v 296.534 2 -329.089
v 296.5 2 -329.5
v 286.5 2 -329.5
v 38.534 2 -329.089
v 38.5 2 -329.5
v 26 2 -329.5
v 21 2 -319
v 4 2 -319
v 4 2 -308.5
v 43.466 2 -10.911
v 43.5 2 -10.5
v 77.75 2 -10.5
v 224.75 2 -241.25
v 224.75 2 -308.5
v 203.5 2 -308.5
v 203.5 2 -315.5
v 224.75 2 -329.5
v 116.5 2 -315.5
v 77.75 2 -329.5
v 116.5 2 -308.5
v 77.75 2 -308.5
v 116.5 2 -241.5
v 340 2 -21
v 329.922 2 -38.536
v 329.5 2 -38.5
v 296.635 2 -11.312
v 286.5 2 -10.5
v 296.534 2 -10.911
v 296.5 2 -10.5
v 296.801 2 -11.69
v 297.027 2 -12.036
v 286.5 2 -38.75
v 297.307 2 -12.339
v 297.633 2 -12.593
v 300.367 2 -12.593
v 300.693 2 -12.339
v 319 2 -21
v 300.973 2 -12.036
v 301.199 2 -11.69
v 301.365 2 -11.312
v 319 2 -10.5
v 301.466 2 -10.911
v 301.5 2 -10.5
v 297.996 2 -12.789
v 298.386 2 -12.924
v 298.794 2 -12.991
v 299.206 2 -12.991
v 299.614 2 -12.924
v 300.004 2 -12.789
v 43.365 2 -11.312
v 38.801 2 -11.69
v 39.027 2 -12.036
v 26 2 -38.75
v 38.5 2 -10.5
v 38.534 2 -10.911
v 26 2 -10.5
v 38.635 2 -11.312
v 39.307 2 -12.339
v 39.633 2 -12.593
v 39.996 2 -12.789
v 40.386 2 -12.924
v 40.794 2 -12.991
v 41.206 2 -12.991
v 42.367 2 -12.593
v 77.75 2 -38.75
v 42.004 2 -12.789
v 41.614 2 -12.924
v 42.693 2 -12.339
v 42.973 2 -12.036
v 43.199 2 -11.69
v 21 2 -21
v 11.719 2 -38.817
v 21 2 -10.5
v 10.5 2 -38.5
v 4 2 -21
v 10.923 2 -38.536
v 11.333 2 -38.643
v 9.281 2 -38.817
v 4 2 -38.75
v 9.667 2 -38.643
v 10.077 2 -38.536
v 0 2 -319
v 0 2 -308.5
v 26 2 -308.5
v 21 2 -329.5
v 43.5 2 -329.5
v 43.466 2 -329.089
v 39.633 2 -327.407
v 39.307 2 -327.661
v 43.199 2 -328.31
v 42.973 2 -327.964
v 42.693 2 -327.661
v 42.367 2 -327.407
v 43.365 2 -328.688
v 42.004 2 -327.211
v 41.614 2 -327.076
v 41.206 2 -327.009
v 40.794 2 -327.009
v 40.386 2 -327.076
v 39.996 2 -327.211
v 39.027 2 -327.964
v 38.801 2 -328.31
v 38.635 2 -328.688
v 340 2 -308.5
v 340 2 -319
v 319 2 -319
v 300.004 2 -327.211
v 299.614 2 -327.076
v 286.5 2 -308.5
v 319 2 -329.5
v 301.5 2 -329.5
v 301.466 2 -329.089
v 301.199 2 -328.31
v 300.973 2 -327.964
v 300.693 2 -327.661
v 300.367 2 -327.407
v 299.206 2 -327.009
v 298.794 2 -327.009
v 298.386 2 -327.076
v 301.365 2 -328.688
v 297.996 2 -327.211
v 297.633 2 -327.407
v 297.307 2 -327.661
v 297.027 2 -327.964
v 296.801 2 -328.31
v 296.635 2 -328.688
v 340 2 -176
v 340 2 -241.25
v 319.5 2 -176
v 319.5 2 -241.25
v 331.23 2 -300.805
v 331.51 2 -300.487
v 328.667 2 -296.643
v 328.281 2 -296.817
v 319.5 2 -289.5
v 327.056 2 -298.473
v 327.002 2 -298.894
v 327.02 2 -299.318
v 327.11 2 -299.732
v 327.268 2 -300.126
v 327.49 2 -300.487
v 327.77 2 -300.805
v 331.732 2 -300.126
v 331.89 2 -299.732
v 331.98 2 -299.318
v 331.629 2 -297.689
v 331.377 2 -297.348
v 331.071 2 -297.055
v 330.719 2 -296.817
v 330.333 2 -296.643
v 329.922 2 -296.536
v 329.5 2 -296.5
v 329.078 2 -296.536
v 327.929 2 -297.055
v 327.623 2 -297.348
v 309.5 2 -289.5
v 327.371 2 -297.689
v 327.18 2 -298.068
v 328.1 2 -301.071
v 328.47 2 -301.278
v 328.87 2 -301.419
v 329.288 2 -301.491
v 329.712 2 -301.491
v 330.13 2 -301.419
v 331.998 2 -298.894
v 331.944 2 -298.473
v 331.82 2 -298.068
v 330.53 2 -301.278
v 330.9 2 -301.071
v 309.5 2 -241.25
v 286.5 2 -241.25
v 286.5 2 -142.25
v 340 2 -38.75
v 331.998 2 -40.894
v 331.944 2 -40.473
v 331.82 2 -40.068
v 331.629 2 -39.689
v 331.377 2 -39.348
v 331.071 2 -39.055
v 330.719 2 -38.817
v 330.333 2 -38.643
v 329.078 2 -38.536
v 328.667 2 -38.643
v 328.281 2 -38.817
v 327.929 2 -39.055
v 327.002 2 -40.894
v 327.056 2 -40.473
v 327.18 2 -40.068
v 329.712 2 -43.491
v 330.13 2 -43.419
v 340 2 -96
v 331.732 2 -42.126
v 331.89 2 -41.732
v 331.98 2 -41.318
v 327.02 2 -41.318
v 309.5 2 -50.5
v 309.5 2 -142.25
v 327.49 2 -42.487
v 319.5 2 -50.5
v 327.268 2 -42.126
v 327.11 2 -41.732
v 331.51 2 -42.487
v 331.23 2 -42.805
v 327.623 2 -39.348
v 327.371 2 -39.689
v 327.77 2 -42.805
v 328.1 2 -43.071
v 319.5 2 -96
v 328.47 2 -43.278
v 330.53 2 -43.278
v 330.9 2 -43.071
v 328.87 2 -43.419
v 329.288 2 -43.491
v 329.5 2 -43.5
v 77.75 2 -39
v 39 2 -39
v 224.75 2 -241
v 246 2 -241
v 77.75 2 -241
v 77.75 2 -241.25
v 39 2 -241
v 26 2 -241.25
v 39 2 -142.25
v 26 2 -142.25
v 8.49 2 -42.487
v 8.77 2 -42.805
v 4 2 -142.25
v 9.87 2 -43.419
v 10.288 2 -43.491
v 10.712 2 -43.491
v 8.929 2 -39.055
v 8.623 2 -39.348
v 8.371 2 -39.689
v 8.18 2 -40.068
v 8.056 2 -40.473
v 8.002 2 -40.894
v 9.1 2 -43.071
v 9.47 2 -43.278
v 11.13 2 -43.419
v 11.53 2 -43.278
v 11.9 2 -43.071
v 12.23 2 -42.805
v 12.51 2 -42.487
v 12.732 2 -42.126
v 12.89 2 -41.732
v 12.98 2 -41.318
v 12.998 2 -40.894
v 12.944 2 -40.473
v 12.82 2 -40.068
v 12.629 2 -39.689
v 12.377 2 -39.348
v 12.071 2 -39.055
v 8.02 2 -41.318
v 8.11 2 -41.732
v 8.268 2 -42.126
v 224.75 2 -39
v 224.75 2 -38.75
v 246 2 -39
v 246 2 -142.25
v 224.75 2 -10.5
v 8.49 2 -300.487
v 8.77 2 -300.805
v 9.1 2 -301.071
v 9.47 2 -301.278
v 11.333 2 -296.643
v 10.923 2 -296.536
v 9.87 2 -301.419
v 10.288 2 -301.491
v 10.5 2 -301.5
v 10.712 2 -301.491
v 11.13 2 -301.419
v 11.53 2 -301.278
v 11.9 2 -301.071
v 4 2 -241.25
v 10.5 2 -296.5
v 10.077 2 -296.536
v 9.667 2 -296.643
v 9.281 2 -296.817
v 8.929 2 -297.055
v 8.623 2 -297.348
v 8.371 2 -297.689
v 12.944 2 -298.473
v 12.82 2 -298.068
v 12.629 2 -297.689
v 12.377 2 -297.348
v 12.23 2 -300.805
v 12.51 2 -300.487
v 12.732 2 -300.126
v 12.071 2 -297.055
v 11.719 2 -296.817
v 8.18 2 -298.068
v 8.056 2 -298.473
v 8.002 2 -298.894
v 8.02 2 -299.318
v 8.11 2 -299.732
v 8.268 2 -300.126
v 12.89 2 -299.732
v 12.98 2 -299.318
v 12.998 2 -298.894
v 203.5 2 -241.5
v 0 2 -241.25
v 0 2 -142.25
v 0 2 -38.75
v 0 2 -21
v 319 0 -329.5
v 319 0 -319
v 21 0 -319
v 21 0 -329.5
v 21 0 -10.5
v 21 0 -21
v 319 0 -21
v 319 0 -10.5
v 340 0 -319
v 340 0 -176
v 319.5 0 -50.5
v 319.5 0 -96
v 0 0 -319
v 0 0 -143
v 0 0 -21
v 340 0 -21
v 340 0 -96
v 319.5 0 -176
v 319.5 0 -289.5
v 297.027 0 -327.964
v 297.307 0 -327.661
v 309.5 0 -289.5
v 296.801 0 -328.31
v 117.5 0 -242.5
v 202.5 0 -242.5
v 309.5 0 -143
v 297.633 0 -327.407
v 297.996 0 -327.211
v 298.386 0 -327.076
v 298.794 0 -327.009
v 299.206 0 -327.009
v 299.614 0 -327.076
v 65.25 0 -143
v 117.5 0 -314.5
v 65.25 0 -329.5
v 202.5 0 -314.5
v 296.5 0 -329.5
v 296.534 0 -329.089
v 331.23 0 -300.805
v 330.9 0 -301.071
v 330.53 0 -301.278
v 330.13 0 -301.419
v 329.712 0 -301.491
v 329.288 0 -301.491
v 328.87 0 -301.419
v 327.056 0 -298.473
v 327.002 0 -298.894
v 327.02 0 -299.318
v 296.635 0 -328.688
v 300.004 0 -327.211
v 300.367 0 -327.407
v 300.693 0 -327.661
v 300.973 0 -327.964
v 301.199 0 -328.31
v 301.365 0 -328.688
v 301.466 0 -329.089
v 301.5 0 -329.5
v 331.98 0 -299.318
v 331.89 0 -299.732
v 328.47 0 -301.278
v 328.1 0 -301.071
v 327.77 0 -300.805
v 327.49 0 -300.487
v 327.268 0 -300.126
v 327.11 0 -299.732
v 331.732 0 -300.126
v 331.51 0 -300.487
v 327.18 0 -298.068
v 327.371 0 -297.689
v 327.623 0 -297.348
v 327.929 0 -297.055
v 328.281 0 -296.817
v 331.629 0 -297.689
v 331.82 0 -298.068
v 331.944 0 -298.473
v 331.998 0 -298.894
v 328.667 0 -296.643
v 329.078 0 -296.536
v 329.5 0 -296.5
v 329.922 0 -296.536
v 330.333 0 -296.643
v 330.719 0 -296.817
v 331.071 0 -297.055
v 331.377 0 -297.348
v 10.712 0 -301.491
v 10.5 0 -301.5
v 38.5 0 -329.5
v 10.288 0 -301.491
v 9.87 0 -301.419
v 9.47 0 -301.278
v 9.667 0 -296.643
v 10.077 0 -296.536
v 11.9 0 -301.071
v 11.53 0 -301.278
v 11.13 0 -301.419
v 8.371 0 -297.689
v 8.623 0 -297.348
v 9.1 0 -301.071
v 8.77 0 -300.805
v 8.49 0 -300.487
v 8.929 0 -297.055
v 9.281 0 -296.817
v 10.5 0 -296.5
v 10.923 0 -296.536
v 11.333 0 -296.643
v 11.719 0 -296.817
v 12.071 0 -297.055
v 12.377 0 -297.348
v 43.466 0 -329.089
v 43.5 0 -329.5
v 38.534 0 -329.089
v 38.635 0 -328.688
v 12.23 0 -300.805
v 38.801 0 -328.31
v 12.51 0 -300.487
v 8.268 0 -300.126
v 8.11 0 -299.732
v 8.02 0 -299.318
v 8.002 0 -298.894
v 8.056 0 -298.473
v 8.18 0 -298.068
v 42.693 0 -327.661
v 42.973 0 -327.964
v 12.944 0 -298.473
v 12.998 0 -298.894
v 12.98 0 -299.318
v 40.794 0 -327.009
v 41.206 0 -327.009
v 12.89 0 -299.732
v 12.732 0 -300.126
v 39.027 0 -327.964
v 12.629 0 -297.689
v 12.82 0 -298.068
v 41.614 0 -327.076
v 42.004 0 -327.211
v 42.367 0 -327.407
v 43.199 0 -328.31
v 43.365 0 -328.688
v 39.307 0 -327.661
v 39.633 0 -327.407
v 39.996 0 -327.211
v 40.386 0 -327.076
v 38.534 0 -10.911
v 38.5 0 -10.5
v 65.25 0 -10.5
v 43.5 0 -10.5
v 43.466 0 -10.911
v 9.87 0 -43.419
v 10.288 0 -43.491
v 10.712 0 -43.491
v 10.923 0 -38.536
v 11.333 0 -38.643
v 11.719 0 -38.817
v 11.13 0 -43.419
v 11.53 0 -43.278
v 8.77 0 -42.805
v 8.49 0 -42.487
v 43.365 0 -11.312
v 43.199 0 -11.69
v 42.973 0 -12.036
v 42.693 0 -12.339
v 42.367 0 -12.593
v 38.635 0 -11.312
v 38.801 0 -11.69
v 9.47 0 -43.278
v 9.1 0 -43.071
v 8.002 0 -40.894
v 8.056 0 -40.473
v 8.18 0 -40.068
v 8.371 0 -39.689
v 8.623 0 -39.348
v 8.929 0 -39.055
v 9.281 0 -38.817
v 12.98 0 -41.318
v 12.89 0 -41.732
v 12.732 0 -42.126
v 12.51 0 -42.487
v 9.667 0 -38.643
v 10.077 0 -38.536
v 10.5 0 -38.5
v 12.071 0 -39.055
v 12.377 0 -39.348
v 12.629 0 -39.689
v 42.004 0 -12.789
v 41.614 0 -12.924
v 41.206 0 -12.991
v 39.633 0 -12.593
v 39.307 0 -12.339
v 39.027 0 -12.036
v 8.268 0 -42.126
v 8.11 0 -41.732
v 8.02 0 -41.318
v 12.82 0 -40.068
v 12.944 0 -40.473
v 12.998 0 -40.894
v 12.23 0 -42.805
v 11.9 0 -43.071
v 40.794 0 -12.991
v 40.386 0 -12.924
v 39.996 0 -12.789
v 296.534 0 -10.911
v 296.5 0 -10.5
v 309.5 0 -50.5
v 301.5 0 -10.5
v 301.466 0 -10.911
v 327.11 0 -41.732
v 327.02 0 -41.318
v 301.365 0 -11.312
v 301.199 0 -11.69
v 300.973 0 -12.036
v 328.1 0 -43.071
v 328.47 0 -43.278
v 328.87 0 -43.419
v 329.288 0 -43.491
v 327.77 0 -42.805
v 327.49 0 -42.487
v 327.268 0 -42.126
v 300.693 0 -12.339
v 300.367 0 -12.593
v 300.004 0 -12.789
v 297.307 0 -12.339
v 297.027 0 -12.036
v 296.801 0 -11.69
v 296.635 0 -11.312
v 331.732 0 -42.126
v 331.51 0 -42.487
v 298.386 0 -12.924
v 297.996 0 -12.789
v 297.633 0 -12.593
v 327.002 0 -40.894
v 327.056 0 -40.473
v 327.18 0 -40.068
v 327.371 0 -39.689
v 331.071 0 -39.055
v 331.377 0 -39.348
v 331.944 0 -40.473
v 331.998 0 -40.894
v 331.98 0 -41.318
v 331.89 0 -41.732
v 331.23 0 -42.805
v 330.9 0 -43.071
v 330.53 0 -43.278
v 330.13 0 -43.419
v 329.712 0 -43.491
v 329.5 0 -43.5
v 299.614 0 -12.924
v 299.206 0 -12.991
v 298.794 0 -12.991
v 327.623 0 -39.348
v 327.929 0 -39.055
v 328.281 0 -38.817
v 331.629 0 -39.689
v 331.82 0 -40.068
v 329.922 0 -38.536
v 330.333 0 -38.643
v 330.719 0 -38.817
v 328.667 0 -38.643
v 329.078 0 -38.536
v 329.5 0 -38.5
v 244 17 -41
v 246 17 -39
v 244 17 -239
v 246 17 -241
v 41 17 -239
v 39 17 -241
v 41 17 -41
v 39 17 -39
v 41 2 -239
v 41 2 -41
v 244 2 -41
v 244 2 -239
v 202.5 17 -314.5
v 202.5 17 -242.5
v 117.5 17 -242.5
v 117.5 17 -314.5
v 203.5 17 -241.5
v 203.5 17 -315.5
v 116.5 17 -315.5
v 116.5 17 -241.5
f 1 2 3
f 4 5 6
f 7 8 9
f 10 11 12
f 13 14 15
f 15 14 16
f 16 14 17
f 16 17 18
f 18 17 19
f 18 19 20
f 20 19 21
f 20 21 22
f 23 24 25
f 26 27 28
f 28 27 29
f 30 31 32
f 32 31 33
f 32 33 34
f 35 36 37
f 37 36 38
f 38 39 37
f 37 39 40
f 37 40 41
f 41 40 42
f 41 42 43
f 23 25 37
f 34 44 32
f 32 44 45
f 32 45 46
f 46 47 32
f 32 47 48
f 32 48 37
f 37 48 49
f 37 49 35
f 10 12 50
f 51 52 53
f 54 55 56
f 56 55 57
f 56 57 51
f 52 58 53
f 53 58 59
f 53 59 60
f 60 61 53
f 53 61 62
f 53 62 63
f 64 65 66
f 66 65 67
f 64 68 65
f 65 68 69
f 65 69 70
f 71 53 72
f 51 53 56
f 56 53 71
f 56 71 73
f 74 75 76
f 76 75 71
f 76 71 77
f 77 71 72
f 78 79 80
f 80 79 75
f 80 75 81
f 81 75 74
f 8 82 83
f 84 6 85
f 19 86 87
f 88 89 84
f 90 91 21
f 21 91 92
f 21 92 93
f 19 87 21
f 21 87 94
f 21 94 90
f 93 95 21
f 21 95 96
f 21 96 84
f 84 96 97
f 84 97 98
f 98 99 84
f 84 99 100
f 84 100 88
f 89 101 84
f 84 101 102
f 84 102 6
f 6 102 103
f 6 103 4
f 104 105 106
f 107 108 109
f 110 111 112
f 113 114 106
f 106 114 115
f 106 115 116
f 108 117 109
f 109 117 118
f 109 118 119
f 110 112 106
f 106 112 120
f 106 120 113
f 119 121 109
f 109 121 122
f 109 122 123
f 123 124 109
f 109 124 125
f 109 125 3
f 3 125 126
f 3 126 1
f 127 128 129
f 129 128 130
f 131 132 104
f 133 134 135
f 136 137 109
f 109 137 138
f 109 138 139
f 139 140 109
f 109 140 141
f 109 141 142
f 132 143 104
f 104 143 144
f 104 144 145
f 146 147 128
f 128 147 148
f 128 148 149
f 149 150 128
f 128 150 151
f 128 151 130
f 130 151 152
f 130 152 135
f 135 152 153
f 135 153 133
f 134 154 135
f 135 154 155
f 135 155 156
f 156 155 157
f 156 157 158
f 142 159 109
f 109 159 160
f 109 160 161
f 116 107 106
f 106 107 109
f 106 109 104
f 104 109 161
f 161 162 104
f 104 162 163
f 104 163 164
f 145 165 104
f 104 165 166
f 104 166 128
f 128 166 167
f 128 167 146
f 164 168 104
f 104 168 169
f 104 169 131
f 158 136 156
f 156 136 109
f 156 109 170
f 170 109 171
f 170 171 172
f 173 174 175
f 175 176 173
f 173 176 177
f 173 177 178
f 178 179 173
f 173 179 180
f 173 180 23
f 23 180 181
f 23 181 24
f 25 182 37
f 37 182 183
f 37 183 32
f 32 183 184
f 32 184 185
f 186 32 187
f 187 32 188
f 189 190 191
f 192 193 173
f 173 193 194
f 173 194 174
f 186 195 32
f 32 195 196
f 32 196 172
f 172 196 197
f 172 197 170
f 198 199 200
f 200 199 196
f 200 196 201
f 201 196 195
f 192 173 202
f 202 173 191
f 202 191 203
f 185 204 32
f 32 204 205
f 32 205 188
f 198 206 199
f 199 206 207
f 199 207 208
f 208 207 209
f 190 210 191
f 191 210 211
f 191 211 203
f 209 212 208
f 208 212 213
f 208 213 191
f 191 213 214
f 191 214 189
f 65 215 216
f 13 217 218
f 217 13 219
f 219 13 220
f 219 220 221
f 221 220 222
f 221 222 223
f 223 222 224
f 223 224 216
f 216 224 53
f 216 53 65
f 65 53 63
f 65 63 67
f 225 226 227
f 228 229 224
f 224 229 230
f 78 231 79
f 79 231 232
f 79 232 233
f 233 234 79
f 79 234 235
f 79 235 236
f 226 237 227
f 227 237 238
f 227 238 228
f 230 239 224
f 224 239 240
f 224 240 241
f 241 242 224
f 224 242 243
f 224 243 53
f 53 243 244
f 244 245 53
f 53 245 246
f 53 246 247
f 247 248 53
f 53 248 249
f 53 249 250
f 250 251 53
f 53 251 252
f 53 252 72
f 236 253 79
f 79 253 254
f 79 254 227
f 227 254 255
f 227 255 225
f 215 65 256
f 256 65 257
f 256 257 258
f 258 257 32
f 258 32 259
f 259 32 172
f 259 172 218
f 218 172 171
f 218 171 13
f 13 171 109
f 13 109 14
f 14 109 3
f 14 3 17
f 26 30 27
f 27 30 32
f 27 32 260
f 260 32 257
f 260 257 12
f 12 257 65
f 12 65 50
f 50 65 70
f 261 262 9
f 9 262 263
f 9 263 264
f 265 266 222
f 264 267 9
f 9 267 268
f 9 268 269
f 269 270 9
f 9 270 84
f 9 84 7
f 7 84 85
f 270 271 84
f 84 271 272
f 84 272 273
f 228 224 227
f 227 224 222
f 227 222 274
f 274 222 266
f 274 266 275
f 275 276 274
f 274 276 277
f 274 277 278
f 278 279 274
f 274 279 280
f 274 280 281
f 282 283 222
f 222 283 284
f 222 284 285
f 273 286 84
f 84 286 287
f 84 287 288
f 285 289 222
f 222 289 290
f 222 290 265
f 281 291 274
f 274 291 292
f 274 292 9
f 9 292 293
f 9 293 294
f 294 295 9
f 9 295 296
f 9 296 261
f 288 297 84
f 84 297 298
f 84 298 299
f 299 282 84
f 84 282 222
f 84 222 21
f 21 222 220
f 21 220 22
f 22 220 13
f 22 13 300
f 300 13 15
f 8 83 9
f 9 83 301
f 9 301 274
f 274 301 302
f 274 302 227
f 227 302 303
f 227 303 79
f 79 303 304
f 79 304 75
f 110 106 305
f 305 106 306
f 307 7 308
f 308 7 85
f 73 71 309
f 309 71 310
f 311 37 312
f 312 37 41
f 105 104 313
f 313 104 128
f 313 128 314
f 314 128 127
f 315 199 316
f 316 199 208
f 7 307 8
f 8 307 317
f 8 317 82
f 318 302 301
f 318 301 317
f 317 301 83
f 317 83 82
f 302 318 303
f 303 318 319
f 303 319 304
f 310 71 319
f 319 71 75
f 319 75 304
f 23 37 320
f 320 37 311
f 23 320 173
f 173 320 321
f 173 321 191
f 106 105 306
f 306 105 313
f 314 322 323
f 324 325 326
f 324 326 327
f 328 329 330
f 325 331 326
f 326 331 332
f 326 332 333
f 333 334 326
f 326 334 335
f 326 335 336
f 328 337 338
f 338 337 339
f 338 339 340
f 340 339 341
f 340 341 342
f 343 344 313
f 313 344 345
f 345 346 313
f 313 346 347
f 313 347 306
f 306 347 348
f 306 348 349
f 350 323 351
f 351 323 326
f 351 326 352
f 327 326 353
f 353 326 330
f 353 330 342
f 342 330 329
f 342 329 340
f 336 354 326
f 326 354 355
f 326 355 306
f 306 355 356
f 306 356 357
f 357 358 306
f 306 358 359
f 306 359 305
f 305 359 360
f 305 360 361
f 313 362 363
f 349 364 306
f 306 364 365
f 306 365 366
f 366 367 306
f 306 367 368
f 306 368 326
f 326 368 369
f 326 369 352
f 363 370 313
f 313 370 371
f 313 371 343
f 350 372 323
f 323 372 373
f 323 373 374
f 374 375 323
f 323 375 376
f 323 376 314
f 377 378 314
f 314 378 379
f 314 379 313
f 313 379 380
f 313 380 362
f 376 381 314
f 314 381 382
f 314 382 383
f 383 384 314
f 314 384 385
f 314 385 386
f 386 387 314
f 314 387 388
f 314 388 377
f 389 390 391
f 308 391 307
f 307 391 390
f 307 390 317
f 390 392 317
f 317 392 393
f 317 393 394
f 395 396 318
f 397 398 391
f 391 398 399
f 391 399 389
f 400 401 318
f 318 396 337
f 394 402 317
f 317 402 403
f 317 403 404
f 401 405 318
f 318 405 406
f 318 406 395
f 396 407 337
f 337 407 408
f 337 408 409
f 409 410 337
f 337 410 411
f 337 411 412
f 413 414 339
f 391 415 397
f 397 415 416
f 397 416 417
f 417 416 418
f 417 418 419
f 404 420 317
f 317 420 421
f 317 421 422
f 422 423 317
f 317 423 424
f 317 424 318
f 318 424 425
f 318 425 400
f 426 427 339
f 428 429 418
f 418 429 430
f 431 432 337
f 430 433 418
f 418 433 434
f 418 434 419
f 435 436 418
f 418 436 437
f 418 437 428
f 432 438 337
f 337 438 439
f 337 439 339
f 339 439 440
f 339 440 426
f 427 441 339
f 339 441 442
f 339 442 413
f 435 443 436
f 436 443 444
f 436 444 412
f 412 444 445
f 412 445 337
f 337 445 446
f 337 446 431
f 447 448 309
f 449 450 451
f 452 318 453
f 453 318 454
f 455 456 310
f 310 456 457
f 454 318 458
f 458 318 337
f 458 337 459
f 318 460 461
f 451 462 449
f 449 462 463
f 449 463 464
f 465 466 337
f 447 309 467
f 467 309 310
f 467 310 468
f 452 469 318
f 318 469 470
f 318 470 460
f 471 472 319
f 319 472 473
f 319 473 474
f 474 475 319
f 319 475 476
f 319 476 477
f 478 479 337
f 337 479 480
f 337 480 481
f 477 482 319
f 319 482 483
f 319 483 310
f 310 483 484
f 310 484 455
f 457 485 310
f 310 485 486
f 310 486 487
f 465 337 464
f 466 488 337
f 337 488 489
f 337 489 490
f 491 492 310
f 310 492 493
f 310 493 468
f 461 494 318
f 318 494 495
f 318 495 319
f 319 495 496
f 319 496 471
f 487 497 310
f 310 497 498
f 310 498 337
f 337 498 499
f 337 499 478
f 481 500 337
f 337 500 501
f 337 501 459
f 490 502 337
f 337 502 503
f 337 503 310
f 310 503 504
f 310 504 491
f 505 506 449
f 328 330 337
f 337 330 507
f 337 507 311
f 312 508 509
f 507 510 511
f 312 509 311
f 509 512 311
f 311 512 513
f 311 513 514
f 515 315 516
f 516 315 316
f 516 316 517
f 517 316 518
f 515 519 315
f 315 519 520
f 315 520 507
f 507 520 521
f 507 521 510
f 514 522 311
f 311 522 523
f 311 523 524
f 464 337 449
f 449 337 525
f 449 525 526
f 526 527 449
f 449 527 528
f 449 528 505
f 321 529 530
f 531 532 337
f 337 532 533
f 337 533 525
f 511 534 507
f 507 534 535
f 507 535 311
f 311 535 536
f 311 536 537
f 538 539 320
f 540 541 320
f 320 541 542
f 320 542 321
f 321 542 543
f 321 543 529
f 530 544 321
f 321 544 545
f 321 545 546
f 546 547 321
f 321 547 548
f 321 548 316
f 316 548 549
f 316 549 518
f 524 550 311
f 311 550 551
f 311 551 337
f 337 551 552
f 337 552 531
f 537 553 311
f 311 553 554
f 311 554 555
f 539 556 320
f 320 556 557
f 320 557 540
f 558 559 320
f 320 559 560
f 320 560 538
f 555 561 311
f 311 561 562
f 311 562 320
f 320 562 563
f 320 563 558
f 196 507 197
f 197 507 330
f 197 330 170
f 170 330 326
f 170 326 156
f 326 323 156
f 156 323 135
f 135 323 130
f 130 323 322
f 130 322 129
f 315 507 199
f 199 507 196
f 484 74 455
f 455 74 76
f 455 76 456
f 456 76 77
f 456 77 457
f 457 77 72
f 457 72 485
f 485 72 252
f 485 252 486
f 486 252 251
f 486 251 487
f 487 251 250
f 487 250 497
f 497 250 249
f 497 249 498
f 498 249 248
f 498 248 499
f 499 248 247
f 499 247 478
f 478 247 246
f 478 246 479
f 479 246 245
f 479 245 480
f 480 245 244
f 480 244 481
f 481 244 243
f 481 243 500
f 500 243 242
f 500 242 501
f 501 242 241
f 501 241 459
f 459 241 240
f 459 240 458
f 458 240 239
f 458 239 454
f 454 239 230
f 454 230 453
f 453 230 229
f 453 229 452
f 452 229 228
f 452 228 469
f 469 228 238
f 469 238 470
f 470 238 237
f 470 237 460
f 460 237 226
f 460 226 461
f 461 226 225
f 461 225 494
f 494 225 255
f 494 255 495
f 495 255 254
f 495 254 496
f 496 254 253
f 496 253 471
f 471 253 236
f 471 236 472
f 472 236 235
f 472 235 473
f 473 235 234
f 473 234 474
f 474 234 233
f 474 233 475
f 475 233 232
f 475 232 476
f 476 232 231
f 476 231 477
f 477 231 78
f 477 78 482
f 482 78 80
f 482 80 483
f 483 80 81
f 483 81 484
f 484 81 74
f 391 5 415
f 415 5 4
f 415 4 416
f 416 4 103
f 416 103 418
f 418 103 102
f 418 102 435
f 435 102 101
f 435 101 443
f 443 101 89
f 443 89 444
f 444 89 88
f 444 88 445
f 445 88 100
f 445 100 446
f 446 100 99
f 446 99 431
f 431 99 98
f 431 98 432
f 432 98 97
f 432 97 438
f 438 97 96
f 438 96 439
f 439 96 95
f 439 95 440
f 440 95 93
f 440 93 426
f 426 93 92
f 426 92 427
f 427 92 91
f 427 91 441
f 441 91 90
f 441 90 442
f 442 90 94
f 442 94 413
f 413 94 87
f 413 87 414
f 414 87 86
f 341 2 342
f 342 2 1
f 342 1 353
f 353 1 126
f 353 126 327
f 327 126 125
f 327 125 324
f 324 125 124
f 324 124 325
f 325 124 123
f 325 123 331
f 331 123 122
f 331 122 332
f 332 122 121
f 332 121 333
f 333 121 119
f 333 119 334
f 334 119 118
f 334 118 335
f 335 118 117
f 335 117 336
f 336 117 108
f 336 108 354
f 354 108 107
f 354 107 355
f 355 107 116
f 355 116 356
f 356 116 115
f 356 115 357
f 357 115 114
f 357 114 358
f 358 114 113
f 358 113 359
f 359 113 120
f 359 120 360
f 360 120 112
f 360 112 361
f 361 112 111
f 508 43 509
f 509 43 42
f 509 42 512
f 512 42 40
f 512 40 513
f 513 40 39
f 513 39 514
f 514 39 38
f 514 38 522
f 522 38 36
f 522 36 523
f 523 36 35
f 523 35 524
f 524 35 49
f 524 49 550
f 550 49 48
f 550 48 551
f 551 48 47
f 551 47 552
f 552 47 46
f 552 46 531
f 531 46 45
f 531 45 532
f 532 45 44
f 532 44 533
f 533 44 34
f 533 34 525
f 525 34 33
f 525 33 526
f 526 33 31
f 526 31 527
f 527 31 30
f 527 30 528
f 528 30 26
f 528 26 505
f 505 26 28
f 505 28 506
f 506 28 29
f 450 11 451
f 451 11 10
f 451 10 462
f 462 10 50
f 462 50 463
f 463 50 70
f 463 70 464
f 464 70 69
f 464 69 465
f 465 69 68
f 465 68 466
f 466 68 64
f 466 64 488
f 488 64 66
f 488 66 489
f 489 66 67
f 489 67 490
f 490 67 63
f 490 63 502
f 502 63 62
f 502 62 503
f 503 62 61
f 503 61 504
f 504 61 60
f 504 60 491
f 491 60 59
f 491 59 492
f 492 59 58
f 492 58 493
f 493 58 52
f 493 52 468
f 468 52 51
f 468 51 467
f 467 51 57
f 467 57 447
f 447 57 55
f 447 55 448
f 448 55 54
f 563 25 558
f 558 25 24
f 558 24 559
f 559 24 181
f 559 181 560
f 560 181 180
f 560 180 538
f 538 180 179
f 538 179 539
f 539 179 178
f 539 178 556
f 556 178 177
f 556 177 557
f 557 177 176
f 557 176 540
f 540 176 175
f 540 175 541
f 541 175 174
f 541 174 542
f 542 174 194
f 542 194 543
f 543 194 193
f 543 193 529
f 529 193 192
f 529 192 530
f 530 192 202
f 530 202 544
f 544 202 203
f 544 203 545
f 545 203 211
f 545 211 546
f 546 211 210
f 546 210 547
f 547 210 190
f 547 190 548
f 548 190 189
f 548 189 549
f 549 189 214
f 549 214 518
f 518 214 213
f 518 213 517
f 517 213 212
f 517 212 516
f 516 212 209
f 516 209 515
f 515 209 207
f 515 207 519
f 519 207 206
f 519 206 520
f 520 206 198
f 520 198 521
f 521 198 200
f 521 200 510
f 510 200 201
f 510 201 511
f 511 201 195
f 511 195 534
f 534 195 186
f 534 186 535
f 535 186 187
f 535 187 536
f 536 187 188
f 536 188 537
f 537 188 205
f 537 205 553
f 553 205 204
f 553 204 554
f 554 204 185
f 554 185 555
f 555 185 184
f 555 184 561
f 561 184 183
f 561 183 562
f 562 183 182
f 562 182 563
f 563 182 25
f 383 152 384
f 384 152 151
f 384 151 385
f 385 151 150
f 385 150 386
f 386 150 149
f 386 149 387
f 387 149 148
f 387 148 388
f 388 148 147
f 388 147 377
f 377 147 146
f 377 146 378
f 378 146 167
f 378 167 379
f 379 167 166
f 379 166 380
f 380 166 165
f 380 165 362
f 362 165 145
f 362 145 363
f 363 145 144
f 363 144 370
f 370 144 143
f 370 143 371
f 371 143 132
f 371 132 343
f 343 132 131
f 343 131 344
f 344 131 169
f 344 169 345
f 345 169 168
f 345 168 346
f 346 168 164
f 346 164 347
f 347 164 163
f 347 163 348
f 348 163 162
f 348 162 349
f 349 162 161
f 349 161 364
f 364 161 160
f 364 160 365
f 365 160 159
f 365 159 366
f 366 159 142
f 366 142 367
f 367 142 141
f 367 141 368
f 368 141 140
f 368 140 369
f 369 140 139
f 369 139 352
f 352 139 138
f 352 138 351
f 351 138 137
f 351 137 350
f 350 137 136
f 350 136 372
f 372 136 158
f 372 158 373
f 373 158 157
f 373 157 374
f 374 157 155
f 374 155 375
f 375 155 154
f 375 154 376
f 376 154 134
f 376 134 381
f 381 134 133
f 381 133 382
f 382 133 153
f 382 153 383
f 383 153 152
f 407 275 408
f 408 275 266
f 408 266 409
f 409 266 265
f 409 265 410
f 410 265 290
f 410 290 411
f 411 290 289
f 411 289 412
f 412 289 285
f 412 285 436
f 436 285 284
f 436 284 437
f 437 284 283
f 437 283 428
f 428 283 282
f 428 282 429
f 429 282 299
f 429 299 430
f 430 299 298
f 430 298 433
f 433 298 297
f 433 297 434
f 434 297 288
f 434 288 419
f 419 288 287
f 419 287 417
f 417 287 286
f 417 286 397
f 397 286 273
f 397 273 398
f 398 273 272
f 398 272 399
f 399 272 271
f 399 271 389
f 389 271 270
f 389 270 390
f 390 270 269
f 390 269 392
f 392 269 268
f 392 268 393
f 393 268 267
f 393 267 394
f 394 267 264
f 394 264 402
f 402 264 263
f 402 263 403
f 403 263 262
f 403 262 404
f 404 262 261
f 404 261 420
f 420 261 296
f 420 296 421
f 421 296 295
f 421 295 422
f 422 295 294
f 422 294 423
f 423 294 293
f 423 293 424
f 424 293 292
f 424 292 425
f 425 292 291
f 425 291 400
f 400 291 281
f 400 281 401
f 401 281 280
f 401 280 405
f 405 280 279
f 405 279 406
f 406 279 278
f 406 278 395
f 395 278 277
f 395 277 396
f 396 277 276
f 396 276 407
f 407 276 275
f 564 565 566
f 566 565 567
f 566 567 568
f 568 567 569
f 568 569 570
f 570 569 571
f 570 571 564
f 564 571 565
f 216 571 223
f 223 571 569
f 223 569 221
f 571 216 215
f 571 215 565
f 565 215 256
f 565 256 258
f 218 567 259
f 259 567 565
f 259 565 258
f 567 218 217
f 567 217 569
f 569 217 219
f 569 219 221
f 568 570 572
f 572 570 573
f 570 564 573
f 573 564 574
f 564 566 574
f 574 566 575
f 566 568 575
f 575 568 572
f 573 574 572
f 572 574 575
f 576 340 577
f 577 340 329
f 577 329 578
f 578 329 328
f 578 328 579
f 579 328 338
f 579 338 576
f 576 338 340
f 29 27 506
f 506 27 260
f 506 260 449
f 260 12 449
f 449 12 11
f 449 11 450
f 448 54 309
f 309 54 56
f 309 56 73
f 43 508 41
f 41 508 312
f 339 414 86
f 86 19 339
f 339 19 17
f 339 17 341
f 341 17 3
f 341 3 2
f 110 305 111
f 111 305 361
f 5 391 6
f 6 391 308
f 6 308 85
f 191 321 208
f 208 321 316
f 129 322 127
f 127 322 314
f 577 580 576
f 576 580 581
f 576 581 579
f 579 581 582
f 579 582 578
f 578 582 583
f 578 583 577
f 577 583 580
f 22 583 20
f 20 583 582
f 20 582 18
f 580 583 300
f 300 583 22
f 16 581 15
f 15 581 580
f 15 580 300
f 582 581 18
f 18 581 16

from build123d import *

# Parameters (mm, degrees)
EXTRUDE_1_DEPTH        = 2
SKETCH_4_W             = 10
SKETCH_4_H             = 239
CUT_EXTRUDE_1640_DEPTH = 481.836770641
SKETCH_841_R           = 2.5
CUT_EXTRUDE_2_DEPTH    = 481.836770641
SKETCH_5_W             = 207
SKETCH_5_H             = 202
SKETCH_5_W_2           = 203
SKETCH_5_H_2           = 198
EXTRUDE_1_2_DEPTH      = 15
SKETCH_7_W             = 85
SKETCH_7_H             = 72
CUT_EXTRUDE_4_DEPTH    = 482.066523466
SKETCH_9_W             = 20.5
SKETCH_9_H             = 80
SKETCH_9_W_2           = 298
SKETCH_9_H_2           = 10.5
CUT_EXTRUDE_5_DEPTH    = 10
SKETCH_10_W            = 87
SKETCH_10_H            = 74
SKETCH_10_W_2          = 85
SKETCH_10_H_2          = 72
EXTRUDE_2_DEPTH        = 15


with BuildPart() as part:
    # 草图2 → Extrude 1 (new body)
    with BuildSketch(Plane(origin=(0, 0, 0), x_dir=(1, 0, 0), z_dir=(0, 1, 0))):
        Polygon((21, 21), (21, 0), (319, 0), (319, 21), (340, 21), (340, 319), (319, 319), (319, 340), (21, 340), (21, 319), (0, 319), (0, 21), align=None)
    extrude(amount=EXTRUDE_1_DEPTH)

    # 草图4 → Cut-Extrude 1640 (cut, through all)
    with BuildSketch(Plane(origin=(0, 2, 0), x_dir=(1, 0, 0), z_dir=(0, 1, 0))):
        with Locations((314.5, 170)):
            Rectangle(SKETCH_4_W, SKETCH_4_H)
    extrude(amount=-CUT_EXTRUDE_1640_DEPTH, mode=Mode.SUBTRACT)

    # Sketch 841 → 切除-拉伸2 (cut, through all)
    with BuildSketch(Plane(origin=(0, 2, 0), x_dir=(1, 0, 0), z_dir=(0, 1, 0))):
        with Locations(Location((10.5, 41, 0), (0, 0, 270))):
            Circle(SKETCH_841_R)
        with Locations(Location((10.5, 299, 0), (0, 0, 90))):
            Circle(SKETCH_841_R)
        with Locations(Location((329.5, 299, 0), (0, 0, 270))):
            Circle(SKETCH_841_R)
        with Locations(Location((329.5, 41, 0), (0, 0, 90))):
            Circle(SKETCH_841_R)
        with Locations(Location((41, 10.5, 0), (0, 0, 270))):
            Circle(SKETCH_841_R)
        with Locations(Location((299, 10.5, 0), (0, 0, 90))):
            Circle(SKETCH_841_R)
        with Locations(Location((299, 329.5, 0), (0, 0, 270))):
            Circle(SKETCH_841_R)
        with Locations(Location((41, 329.5, 0), (0, 0, 90))):
            Circle(SKETCH_841_R)
    extrude(amount=-CUT_EXTRUDE_2_DEPTH, mode=Mode.SUBTRACT)

    # 草图5 → Extrude 1 2 (add)
    with BuildSketch(Plane(origin=(0, 2, 0), x_dir=(1, 0, 0), z_dir=(0, 1, 0))):
        with Locations((142.5, 140)):
            Rectangle(SKETCH_5_W, SKETCH_5_H)
        with Locations((142.5, 140)):
            Rectangle(SKETCH_5_W_2, SKETCH_5_H_2, mode=Mode.SUBTRACT)
    extrude(amount=EXTRUDE_1_2_DEPTH)

    # 草图7 → 切除-拉伸4 (cut, through all)
    with BuildSketch(Plane(origin=(0, 2, 0), x_dir=(1, 0, 0), z_dir=(0, 1, 0))):
        with Locations((160, 278.5)):
            Rectangle(SKETCH_7_W, SKETCH_7_H)
    extrude(amount=-CUT_EXTRUDE_4_DEPTH, mode=Mode.SUBTRACT)

    # 草图9 → 切除-拉伸5 (cut)
    with BuildSketch(Plane(origin=(0, 2, 0), x_dir=(1, 0, 0), z_dir=(0, 1, 0))):
        with Locations((329.75, 136)):
            Rectangle(SKETCH_9_W, SKETCH_9_H)
        with Locations((170, 5.25)):
            Rectangle(SKETCH_9_W_2, SKETCH_9_H_2)
        with Locations((170, 334.75)):
            Rectangle(SKETCH_9_W_2, SKETCH_9_H_2)
    extrude(amount=-CUT_EXTRUDE_5_DEPTH, mode=Mode.SUBTRACT)

    # 草图10 → 拉伸-薄壁2 (add)
    with BuildSketch(Plane(origin=(0, 2, 0), x_dir=(1, 0, 0), z_dir=(0, 1, 0))):
        with Locations((160, 278.5)):
            Rectangle(SKETCH_10_W, SKETCH_10_H)
        with Locations((160, 278.5)):
            Rectangle(SKETCH_10_W_2, SKETCH_10_H_2, mode=Mode.SUBTRACT)
    extrude(amount=EXTRUDE_2_DEPTH)


solid = part.part
